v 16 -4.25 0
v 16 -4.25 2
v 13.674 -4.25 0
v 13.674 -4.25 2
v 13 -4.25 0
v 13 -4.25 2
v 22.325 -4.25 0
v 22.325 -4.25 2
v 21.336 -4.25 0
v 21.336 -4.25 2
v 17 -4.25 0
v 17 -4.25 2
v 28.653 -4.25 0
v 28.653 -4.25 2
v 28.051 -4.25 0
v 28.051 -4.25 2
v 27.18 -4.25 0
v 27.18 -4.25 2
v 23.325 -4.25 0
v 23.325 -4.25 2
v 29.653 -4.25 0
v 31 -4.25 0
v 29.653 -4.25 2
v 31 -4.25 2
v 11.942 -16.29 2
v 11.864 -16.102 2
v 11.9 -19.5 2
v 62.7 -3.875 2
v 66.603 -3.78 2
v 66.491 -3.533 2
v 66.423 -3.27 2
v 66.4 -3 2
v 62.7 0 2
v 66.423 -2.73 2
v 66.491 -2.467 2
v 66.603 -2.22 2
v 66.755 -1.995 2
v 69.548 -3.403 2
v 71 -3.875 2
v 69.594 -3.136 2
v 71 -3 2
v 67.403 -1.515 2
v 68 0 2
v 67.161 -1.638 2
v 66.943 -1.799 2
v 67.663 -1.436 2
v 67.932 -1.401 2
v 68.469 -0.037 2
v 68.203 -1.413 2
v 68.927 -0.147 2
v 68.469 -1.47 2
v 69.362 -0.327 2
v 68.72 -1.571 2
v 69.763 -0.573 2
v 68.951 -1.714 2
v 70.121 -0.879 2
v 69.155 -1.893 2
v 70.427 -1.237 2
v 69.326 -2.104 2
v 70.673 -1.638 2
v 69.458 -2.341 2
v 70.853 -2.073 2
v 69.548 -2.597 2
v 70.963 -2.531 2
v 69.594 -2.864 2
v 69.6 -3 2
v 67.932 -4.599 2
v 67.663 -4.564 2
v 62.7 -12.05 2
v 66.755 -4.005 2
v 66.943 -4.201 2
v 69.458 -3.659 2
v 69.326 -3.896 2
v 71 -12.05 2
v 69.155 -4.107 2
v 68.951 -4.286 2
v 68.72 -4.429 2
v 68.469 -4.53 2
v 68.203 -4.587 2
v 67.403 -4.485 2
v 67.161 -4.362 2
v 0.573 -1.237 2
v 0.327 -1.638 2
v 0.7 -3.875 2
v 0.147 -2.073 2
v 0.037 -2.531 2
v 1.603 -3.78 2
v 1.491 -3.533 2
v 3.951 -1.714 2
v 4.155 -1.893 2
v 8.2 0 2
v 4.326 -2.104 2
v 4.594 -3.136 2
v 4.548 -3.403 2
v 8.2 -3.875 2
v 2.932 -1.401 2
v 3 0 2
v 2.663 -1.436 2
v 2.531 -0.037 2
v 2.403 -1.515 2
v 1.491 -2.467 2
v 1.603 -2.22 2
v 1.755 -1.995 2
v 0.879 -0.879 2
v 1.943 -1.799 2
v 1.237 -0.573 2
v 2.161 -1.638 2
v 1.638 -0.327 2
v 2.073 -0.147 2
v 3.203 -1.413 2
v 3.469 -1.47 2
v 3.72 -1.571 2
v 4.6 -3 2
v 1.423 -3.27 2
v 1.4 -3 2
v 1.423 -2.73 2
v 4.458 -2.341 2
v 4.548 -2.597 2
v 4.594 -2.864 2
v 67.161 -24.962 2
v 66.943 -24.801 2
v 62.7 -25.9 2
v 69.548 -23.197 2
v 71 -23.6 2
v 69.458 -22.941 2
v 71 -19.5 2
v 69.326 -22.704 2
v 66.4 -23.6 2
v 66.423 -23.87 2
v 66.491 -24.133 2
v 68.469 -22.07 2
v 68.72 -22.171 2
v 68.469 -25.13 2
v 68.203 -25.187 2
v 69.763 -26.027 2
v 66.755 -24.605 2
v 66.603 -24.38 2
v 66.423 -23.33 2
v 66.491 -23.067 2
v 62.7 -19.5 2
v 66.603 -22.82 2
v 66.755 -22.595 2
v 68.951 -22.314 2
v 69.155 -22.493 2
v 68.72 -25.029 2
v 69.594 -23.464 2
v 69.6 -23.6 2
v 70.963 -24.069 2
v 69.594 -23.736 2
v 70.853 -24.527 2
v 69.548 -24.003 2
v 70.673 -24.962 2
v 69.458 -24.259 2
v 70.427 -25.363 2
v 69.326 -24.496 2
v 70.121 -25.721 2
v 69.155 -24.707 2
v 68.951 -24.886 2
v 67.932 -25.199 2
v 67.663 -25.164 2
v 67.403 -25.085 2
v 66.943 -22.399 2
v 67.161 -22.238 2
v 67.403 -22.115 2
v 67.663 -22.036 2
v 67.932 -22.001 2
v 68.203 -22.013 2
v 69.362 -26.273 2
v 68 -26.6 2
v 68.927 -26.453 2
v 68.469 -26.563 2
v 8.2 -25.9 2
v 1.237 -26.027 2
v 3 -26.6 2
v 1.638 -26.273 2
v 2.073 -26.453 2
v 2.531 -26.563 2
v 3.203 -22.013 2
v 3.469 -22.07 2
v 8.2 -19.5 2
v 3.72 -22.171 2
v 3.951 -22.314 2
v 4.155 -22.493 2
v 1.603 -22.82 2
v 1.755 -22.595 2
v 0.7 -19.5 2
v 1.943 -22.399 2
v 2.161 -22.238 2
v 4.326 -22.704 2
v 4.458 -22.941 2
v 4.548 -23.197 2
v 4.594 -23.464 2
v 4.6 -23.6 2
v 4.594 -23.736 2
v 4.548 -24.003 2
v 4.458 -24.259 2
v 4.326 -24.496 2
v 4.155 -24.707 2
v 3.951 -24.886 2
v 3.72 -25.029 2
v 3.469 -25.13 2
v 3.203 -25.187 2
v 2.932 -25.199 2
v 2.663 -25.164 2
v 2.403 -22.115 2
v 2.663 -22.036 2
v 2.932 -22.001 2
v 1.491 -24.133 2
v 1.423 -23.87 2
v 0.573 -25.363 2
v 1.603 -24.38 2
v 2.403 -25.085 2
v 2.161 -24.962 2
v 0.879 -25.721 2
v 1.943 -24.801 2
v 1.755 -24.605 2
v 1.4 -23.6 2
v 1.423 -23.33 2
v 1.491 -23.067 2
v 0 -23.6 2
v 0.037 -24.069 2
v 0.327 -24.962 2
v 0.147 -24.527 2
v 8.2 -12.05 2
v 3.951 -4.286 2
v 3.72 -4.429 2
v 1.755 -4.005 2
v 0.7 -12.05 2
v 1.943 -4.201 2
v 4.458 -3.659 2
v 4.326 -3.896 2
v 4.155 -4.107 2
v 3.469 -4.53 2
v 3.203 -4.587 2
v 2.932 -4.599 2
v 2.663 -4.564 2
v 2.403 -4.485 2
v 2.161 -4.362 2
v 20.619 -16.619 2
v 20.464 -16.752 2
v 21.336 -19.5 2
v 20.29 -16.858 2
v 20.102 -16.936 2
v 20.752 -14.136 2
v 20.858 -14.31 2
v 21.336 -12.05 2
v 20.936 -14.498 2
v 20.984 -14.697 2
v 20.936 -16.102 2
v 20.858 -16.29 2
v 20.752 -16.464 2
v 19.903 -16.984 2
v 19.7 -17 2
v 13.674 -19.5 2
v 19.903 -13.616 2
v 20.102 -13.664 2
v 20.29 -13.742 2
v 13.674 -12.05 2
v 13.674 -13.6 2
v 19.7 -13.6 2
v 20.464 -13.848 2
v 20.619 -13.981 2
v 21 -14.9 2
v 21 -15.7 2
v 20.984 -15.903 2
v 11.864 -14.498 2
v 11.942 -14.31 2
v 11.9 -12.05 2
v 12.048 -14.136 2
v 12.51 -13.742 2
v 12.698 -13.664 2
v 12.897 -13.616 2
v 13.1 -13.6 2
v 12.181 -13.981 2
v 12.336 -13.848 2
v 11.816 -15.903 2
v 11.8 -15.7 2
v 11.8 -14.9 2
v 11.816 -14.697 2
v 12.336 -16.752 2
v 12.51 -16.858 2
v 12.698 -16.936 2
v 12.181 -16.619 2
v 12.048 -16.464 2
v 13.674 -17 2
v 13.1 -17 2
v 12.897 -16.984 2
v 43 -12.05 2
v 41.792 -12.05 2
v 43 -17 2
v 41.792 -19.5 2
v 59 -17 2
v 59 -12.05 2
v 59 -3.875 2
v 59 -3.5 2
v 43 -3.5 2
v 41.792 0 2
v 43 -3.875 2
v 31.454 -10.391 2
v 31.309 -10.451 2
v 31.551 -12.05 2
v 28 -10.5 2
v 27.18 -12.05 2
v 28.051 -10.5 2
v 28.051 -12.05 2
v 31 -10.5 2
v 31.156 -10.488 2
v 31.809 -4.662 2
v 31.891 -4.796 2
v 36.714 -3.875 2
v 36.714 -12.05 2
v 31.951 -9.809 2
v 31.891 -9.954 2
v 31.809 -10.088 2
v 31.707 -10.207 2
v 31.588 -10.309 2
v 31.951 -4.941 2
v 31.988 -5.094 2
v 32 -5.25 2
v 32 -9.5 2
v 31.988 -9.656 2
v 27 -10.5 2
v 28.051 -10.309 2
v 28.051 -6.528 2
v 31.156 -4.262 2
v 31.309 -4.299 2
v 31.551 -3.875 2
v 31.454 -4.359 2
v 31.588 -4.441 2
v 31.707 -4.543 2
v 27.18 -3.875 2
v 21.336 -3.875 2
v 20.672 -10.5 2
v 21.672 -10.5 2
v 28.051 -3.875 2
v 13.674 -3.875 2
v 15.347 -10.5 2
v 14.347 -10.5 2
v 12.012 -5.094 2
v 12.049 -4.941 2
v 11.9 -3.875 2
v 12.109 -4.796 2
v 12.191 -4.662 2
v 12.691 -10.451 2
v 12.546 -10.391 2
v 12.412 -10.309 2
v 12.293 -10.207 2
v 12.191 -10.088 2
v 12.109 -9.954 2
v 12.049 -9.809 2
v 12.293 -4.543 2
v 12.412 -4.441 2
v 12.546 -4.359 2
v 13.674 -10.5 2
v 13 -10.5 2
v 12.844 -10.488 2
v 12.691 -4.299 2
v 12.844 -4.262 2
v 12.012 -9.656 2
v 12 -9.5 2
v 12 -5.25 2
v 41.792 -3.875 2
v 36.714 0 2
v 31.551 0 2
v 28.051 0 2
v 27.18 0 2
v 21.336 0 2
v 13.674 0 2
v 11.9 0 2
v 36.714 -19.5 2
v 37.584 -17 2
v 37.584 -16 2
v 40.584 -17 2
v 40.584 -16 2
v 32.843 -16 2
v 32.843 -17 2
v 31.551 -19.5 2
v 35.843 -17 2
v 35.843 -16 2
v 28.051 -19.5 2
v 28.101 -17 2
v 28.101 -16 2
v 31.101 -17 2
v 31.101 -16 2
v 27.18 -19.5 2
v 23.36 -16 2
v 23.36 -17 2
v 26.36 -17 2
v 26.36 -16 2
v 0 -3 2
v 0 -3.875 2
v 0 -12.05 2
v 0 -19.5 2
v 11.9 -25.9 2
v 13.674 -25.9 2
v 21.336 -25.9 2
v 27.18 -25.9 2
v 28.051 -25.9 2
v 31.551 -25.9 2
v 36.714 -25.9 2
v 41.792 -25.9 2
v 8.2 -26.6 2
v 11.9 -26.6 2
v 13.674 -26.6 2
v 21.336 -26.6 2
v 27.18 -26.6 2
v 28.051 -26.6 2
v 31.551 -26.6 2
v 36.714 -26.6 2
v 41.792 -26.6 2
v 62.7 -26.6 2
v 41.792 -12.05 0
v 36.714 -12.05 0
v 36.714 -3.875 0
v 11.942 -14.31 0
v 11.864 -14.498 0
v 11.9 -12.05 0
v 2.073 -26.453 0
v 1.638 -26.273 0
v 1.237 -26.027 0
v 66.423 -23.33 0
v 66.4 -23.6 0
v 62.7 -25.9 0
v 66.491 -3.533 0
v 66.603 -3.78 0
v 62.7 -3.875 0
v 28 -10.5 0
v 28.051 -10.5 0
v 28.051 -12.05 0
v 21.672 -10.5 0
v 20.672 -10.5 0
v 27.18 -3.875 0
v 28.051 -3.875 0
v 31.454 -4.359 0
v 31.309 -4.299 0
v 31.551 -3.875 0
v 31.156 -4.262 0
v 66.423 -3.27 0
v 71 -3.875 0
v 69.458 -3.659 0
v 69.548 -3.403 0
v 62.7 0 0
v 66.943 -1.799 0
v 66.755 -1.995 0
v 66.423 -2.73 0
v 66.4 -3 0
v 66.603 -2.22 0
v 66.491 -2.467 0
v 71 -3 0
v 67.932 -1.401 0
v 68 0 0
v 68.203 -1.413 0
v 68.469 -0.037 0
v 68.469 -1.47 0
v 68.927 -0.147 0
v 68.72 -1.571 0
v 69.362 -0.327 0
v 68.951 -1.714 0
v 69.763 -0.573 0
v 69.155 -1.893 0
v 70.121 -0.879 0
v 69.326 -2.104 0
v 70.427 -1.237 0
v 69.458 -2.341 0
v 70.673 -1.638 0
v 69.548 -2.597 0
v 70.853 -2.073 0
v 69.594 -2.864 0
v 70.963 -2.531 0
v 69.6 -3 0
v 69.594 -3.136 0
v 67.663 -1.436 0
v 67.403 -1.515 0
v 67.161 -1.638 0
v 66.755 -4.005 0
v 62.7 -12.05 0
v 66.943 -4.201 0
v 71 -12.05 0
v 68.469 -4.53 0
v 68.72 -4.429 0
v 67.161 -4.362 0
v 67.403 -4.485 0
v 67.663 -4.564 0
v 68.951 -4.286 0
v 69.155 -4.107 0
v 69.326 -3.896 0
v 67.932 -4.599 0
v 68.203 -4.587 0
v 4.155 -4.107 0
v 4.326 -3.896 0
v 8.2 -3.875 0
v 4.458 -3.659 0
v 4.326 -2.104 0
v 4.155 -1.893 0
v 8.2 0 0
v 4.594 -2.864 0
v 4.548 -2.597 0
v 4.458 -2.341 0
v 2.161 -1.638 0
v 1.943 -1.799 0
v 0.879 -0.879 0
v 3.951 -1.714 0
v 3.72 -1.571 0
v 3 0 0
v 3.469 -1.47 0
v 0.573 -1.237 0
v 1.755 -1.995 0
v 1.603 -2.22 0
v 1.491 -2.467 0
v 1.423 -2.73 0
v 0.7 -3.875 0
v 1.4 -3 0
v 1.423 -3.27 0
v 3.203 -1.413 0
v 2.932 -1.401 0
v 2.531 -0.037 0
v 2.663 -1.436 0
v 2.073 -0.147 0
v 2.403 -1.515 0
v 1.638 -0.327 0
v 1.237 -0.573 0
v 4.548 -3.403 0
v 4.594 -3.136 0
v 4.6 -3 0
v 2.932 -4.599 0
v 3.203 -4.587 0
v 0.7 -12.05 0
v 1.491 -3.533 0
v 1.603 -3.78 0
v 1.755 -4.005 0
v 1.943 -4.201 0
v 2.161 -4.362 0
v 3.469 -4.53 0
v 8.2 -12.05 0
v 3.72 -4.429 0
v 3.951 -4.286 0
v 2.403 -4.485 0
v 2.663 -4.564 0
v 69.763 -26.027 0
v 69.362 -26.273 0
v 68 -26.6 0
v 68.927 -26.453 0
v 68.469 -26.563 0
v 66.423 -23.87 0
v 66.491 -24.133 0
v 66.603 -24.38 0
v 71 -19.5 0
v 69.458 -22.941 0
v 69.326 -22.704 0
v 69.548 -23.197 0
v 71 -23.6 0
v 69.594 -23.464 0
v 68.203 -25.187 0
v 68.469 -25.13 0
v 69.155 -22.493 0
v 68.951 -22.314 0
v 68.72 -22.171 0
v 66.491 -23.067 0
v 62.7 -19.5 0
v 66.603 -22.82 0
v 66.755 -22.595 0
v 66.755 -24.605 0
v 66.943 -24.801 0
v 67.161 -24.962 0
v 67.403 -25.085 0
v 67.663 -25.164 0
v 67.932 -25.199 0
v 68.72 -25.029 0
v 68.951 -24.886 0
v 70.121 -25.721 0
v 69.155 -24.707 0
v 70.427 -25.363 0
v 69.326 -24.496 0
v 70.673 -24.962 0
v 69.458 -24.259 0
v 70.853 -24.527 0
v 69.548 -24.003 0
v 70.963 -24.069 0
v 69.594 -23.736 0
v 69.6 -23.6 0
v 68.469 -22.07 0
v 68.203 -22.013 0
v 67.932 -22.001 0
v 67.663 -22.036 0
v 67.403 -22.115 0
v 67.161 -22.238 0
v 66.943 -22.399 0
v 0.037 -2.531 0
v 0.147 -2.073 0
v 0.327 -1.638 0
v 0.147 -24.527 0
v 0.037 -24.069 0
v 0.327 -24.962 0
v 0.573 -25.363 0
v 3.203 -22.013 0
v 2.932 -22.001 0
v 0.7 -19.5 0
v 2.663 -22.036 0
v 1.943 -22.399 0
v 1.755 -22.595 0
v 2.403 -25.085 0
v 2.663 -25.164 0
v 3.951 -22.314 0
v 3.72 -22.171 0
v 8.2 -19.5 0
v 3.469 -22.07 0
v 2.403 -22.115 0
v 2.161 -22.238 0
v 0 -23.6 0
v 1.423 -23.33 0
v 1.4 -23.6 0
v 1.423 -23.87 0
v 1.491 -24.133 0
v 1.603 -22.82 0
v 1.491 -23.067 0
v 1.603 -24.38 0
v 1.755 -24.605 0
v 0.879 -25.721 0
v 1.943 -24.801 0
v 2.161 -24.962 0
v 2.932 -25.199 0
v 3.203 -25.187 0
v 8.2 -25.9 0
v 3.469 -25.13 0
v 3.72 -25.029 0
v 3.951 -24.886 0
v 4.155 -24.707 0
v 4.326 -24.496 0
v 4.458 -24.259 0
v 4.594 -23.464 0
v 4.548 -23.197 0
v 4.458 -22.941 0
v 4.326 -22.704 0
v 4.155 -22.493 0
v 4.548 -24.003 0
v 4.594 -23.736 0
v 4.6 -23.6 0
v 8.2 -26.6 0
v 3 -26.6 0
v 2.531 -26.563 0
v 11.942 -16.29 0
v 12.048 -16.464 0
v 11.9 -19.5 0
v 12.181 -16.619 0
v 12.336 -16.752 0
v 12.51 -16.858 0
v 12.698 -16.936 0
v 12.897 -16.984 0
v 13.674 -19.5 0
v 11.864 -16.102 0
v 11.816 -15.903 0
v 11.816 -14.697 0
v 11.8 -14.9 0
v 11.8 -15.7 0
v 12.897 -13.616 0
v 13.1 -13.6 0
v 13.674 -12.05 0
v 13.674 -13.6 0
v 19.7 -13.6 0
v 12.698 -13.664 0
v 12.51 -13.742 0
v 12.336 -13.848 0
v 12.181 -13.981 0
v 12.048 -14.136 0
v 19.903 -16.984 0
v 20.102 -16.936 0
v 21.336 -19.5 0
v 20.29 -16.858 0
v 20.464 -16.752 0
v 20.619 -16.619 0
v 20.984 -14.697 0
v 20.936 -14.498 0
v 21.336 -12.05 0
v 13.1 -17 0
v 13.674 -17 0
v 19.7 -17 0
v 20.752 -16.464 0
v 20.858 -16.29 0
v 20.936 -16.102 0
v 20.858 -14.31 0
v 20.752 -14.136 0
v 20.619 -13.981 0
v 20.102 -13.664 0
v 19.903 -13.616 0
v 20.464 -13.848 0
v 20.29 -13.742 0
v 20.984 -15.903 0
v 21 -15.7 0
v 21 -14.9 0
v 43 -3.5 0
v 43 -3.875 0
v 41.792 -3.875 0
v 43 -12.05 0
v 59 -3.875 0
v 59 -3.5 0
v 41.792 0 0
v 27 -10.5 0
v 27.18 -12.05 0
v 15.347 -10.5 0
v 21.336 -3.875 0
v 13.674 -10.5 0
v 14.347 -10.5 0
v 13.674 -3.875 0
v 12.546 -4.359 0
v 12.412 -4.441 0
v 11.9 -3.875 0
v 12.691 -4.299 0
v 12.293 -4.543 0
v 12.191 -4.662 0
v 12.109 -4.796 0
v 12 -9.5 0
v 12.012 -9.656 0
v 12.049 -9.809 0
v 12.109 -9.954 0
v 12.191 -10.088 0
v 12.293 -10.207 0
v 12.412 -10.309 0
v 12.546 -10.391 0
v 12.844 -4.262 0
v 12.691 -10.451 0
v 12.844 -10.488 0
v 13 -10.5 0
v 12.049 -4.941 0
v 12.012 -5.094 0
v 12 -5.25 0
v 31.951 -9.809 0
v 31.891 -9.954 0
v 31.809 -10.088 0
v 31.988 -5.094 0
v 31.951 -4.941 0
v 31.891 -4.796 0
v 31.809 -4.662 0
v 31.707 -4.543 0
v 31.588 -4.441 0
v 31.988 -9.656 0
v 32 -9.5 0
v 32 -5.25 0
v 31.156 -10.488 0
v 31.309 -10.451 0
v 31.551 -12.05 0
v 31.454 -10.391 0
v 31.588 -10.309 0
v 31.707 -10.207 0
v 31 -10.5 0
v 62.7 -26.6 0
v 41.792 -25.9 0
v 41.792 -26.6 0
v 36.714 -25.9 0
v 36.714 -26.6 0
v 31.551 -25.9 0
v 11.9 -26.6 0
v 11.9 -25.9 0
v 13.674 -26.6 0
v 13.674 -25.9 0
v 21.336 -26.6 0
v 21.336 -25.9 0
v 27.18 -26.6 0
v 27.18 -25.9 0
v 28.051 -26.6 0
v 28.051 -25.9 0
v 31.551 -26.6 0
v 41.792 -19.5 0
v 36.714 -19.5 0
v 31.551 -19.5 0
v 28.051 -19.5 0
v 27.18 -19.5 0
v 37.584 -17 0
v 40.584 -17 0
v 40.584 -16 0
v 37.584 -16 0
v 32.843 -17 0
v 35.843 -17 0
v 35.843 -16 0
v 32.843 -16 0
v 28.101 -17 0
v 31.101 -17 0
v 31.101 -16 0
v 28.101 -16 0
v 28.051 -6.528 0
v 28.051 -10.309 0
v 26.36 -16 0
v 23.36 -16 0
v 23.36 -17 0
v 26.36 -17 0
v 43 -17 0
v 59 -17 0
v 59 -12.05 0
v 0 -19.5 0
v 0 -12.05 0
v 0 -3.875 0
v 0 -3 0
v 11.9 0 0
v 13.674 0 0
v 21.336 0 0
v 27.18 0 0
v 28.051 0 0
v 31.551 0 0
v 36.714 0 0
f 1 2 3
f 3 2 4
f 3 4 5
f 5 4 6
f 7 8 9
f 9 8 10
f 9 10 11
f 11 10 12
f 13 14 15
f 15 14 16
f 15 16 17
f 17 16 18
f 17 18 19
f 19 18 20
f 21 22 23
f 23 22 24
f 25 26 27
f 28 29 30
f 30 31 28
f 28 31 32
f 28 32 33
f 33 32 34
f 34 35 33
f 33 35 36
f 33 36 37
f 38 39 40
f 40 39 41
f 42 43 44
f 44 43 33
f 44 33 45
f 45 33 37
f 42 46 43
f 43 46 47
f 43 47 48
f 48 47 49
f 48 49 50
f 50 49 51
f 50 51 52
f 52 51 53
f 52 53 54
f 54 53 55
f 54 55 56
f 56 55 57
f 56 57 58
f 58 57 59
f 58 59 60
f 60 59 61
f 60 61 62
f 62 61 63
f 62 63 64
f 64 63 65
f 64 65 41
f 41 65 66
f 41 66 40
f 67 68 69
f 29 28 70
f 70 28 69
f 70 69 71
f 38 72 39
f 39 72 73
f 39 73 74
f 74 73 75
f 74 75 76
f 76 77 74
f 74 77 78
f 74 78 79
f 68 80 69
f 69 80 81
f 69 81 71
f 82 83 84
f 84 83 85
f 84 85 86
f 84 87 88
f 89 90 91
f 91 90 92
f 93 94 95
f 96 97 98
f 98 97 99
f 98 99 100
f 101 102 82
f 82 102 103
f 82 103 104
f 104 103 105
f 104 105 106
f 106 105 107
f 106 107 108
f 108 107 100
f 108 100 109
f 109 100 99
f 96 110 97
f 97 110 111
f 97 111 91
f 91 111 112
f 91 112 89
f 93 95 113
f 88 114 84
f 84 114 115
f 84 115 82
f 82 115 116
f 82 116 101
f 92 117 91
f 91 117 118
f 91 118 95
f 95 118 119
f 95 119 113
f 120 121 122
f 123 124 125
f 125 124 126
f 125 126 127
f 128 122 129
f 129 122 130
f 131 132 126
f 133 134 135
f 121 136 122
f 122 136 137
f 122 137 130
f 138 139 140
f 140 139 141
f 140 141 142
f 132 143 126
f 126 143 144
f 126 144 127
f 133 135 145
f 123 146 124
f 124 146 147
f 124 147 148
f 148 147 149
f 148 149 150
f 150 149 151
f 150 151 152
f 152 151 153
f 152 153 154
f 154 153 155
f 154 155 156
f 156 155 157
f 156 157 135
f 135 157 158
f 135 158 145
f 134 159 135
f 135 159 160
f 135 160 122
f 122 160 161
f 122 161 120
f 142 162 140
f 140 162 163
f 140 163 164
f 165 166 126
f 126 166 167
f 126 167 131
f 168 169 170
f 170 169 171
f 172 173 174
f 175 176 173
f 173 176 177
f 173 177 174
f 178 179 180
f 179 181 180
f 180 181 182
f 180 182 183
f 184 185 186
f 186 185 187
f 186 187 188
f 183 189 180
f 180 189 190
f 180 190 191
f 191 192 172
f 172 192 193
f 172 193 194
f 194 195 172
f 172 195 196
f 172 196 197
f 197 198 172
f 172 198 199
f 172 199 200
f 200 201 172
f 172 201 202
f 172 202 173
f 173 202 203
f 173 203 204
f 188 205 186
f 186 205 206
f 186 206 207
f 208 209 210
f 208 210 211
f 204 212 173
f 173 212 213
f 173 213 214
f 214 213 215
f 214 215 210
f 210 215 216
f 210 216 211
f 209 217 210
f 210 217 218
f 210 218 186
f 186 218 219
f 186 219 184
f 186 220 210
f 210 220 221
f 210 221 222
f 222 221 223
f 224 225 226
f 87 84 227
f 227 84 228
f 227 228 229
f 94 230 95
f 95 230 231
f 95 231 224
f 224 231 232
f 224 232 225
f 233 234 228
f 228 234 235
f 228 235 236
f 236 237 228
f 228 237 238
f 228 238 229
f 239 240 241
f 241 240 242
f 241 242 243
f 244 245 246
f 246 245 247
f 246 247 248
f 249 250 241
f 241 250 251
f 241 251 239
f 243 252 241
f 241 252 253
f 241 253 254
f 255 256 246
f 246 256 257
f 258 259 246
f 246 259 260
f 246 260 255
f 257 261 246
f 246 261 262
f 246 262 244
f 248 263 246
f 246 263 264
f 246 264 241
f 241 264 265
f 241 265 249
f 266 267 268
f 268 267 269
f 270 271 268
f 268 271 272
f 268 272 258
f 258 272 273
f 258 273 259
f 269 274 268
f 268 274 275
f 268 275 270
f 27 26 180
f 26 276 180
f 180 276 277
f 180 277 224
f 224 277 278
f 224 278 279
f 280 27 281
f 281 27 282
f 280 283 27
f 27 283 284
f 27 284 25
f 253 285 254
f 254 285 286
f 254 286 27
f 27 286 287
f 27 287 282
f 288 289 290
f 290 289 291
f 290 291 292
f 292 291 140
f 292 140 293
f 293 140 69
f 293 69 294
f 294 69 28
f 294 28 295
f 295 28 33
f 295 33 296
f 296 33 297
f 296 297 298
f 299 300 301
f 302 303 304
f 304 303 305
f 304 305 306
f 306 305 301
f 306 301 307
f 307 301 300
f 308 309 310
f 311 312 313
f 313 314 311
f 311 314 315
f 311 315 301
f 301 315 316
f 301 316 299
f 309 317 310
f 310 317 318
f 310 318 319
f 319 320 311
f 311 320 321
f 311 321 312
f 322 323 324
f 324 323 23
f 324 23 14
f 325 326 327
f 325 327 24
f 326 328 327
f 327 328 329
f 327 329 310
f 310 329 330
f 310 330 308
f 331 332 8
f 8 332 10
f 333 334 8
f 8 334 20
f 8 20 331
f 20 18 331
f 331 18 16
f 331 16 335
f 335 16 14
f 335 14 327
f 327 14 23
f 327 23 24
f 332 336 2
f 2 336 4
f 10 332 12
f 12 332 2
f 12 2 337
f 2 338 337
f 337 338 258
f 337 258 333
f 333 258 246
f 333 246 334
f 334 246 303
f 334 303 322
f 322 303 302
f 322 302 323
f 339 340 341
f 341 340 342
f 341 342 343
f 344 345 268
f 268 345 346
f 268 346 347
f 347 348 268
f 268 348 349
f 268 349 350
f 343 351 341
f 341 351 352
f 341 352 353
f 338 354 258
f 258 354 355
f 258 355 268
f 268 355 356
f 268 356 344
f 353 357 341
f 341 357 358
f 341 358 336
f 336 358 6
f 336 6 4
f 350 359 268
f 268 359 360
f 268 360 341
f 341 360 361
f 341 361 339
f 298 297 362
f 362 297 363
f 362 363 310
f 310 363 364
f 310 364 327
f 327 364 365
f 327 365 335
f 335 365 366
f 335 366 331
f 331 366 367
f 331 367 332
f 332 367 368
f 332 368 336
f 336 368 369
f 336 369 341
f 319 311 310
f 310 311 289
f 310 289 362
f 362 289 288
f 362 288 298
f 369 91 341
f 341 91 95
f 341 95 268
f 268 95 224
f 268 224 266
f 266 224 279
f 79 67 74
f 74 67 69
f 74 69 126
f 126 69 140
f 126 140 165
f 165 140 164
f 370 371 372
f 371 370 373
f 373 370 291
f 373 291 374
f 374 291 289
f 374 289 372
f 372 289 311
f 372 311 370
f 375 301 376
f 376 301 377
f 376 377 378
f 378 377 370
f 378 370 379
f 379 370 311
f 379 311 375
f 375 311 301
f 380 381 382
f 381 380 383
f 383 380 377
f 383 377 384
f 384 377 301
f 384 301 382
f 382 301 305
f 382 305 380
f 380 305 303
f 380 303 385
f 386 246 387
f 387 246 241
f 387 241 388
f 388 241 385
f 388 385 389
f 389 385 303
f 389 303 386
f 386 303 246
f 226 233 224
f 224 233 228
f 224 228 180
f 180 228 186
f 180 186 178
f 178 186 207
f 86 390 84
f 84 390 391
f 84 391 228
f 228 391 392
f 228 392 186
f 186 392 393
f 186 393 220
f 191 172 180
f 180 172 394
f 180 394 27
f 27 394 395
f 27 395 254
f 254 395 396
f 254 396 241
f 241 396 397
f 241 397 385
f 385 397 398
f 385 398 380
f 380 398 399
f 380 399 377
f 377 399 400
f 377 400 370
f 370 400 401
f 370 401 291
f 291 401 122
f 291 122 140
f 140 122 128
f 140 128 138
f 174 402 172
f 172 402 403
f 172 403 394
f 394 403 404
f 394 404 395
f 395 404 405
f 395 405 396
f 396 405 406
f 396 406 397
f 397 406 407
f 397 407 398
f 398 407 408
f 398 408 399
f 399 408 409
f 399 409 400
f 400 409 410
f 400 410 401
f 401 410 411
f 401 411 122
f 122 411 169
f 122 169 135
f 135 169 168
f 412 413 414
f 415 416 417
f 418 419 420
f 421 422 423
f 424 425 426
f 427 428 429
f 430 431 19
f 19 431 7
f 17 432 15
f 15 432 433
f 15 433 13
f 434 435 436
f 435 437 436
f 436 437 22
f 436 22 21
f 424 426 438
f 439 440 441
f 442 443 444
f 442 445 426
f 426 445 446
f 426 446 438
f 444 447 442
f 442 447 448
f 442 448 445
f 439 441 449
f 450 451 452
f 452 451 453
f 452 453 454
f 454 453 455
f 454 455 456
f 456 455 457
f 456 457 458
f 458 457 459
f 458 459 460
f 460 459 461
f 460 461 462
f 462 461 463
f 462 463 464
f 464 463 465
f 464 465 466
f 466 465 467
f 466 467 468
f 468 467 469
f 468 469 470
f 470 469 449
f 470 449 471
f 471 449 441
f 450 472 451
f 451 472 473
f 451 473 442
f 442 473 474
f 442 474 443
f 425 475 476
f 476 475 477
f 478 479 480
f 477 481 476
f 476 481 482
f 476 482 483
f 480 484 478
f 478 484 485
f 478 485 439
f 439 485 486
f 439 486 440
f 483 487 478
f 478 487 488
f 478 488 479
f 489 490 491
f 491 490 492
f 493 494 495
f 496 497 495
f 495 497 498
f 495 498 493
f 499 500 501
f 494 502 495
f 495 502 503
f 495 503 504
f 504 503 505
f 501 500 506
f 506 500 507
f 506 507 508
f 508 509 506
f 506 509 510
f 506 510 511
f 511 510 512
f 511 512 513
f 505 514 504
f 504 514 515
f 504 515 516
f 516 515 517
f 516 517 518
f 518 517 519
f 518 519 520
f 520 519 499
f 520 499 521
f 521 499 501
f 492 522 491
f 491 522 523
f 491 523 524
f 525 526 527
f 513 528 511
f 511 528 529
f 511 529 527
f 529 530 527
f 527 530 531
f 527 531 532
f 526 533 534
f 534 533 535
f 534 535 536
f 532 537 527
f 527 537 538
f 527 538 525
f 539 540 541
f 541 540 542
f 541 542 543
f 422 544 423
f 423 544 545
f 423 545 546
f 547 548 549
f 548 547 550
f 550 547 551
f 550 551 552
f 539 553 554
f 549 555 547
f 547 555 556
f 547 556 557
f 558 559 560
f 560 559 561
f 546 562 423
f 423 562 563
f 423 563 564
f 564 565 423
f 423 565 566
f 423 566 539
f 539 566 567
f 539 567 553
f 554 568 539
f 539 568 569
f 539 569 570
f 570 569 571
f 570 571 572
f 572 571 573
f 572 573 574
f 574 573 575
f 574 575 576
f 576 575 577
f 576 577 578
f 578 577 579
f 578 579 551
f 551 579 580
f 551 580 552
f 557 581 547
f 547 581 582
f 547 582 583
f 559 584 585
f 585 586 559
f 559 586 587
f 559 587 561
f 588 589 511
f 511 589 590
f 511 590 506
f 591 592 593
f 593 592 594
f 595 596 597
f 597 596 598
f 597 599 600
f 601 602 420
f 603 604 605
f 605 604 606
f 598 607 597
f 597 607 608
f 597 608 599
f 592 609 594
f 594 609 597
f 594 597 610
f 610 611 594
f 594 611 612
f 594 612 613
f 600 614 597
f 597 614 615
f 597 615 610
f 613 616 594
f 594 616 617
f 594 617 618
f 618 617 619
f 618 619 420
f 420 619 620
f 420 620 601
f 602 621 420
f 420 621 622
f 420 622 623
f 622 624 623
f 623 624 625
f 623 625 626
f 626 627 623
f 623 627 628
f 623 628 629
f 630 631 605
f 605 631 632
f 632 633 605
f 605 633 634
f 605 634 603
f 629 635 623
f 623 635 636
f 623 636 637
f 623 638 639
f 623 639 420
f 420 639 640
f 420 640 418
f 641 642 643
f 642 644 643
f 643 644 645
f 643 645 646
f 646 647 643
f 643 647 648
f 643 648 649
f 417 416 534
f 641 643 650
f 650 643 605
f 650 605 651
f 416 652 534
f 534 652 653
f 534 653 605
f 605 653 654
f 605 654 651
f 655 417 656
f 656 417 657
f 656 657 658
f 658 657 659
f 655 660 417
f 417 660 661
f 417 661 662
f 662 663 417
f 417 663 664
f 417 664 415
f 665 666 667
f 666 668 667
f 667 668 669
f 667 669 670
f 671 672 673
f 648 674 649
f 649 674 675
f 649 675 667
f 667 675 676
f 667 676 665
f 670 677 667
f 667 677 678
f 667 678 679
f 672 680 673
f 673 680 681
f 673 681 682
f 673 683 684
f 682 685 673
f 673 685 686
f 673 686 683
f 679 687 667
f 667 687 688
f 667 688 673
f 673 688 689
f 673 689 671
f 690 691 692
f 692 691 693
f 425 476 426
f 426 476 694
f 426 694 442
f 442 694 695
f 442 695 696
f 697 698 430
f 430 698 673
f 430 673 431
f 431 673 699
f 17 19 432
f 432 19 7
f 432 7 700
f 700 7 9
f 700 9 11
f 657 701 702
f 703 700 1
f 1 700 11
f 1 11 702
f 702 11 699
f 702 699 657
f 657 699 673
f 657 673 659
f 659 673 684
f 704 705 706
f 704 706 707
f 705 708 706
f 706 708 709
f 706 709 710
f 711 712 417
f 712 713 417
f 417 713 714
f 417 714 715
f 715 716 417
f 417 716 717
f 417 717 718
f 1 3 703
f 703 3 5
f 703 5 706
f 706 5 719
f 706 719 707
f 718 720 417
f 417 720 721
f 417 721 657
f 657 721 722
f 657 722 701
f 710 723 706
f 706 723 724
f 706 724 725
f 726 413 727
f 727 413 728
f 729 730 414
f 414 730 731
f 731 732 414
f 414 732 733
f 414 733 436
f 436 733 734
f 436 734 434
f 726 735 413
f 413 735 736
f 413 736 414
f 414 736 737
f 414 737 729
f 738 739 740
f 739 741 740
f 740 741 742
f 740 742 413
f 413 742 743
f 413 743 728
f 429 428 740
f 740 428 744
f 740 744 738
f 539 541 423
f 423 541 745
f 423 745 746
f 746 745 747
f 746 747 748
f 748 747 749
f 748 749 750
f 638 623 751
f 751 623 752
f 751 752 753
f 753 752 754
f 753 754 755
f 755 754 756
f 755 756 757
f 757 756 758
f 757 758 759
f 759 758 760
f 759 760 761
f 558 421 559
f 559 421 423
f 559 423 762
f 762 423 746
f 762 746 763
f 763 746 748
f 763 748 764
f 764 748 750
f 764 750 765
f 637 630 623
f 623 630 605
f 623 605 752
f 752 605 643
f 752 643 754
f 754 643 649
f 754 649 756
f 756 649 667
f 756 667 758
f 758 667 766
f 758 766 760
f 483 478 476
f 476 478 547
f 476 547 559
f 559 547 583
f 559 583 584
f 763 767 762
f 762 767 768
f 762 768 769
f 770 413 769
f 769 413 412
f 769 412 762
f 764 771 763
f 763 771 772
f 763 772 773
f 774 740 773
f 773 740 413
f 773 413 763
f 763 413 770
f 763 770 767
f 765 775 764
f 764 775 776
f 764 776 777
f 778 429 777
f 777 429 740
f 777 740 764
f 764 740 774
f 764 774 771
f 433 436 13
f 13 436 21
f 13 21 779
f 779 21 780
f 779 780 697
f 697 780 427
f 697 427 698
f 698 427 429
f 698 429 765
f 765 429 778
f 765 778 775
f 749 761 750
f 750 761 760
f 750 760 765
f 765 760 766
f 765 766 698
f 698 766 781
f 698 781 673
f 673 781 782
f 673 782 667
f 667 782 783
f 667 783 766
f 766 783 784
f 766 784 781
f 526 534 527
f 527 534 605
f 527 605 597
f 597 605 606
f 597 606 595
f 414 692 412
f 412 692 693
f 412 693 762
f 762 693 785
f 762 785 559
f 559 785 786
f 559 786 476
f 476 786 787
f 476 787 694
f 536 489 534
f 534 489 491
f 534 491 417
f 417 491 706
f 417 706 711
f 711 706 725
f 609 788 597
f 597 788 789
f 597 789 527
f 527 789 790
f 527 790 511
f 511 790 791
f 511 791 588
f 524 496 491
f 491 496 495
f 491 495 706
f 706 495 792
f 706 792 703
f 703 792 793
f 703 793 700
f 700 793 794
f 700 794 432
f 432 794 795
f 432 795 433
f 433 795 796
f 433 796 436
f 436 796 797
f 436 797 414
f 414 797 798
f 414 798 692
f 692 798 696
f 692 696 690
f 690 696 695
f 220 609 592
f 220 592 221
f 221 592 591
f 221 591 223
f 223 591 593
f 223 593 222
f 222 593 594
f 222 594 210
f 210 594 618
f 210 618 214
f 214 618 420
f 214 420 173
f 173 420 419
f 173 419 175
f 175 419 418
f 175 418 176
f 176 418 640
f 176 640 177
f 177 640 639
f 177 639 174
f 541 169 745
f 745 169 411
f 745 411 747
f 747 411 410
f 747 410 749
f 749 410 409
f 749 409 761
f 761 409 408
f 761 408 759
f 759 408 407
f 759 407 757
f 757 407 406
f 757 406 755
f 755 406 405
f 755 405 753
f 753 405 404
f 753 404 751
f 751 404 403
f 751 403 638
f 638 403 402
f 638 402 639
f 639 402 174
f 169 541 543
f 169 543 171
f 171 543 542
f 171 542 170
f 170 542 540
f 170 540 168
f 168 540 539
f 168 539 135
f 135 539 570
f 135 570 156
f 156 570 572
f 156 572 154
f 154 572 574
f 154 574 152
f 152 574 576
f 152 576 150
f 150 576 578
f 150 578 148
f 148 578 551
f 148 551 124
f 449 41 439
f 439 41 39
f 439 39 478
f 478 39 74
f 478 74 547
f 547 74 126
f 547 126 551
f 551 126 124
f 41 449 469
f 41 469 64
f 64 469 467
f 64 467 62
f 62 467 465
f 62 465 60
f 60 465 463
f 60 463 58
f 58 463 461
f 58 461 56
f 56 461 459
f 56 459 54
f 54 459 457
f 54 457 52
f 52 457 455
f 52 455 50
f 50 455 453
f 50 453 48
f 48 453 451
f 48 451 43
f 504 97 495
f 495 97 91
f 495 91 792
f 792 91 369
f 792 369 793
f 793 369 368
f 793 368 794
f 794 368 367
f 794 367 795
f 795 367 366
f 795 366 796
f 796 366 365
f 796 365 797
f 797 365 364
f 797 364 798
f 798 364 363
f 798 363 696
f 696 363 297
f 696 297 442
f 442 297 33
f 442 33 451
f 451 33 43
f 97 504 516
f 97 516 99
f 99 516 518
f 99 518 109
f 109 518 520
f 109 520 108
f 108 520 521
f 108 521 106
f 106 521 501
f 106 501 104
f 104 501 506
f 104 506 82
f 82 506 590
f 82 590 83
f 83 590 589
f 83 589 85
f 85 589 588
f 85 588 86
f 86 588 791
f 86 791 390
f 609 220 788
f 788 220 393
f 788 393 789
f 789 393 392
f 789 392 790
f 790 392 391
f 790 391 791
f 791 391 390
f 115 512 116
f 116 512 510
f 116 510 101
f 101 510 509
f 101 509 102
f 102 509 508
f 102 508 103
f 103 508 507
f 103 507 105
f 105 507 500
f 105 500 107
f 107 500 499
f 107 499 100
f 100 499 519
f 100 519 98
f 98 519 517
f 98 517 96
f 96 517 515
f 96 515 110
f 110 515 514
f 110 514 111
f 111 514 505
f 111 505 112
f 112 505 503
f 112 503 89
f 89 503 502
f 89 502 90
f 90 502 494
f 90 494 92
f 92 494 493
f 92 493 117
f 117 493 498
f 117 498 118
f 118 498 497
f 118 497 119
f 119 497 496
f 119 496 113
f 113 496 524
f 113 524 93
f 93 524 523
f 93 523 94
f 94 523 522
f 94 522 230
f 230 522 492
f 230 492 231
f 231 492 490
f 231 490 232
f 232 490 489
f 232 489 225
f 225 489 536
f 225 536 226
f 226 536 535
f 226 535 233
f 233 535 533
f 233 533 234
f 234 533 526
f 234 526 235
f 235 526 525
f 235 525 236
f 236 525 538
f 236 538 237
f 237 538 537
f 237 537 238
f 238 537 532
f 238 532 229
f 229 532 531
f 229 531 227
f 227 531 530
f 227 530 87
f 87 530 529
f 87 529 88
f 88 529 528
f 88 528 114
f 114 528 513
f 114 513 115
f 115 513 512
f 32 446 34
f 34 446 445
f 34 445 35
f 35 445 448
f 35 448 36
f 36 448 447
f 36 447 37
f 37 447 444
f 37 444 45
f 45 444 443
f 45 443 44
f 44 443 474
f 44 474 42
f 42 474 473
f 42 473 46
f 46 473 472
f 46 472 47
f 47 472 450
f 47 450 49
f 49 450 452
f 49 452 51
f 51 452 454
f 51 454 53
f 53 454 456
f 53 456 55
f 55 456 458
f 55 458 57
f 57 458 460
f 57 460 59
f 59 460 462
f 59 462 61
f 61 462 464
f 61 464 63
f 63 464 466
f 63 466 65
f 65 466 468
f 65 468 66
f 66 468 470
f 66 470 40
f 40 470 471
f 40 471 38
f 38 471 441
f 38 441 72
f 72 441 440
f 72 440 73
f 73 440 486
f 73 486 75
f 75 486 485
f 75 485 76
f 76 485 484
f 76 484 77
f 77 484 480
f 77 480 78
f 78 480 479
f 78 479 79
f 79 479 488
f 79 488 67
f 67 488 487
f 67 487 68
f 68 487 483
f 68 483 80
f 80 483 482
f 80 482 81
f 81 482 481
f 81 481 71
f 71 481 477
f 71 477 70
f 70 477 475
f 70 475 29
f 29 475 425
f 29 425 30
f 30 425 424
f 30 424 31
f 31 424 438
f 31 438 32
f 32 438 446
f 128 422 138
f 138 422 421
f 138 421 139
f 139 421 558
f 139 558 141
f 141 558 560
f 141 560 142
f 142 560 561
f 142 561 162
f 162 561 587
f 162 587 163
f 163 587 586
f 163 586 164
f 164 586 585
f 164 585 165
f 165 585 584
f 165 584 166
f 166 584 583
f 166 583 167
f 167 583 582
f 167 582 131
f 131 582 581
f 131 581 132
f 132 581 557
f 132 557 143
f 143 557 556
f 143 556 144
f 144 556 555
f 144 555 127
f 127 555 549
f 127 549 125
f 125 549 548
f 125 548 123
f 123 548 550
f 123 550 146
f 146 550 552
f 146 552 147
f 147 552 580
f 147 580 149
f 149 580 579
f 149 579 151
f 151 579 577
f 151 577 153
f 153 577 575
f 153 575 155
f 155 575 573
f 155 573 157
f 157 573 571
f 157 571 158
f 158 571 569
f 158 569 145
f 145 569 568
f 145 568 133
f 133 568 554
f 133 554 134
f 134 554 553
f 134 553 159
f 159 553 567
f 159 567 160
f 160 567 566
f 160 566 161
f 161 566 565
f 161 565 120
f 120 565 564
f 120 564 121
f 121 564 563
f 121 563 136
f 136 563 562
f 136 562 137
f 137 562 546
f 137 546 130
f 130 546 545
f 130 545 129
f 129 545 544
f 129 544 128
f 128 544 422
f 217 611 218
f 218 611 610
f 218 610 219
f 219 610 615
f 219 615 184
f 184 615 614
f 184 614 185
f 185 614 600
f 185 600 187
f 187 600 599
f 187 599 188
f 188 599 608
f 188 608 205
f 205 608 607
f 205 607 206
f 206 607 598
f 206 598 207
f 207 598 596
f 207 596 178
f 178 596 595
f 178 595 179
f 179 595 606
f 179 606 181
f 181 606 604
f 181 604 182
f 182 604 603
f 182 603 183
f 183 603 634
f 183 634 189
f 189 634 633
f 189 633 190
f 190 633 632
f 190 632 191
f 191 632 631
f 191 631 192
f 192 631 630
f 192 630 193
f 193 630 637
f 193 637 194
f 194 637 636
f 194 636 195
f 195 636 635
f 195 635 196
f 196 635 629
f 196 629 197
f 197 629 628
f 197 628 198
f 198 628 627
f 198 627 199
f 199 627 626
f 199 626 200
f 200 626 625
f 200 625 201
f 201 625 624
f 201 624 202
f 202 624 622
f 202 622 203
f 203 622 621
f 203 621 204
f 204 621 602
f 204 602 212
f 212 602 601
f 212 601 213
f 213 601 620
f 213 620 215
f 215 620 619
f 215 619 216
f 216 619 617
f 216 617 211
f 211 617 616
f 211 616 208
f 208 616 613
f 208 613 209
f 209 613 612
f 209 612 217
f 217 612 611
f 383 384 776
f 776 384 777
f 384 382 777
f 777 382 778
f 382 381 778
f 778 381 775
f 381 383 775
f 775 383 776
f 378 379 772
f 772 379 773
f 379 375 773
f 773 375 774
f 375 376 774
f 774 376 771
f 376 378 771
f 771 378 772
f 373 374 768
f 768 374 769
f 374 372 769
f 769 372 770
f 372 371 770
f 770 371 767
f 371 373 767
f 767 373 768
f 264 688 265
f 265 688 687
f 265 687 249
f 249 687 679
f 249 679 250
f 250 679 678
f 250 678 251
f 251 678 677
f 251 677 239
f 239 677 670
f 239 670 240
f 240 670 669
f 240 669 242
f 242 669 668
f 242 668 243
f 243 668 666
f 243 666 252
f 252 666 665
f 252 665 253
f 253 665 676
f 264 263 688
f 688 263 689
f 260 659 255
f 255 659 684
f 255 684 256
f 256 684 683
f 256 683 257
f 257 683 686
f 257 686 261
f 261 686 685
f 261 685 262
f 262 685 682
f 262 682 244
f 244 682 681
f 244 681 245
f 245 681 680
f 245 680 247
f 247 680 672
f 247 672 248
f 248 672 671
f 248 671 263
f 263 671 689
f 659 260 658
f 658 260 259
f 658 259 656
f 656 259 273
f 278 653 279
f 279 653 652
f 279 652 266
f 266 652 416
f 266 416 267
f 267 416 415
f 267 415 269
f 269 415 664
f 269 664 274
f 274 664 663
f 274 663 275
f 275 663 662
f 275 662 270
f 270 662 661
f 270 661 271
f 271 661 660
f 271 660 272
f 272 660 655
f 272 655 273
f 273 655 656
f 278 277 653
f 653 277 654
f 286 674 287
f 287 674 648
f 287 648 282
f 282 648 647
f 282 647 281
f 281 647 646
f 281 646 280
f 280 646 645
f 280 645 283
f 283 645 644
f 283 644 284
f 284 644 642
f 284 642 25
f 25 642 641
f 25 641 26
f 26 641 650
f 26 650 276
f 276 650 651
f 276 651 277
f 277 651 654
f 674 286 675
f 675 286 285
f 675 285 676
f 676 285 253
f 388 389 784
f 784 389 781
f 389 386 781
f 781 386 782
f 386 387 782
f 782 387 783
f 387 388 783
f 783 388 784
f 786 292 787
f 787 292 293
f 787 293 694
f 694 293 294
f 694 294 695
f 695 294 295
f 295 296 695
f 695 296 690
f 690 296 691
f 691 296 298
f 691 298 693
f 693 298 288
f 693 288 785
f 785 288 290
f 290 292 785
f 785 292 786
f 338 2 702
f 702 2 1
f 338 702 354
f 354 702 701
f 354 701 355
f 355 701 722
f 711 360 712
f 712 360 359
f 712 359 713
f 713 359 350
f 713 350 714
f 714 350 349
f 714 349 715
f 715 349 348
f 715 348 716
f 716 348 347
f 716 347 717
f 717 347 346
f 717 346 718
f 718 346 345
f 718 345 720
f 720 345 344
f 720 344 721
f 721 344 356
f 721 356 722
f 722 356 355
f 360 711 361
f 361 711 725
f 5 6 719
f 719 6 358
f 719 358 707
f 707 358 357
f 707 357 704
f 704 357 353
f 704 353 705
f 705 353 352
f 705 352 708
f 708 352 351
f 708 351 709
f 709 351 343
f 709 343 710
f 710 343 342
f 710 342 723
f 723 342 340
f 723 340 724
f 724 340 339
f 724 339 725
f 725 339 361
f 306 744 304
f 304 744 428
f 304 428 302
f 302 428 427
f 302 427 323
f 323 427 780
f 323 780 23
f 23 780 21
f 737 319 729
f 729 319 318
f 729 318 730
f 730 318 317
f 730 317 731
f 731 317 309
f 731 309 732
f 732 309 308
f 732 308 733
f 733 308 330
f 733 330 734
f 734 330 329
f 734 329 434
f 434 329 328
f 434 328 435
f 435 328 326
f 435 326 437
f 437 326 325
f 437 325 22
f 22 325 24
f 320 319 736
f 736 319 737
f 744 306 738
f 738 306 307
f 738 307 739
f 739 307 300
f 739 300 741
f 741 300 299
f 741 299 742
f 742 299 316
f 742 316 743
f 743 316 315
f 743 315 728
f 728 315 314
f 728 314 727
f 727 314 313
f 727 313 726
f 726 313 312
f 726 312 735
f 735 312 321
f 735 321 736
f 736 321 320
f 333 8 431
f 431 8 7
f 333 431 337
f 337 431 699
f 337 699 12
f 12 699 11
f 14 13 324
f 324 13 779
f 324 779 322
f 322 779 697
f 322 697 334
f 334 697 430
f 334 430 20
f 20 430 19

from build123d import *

# Parameters (mm, degrees)
SKETCH_1_R          = 1.6
EXTRUDE_1_DEPTH     = 2
SKETCH_2_W          = 16
SKETCH_2_H          = 13.5
SKETCH_2_W_2        = 3
SKETCH_2_H_2        = 1
CUT_EXTRUDE_2_DEPTH = 2
SKETCH_3_W          = 20
SKETCH_3_H          = 2.5
EXTRUDE_2_DEPTH     = 20
CUT_EXTRUDE_3_DEPTH = 20
SKETCH_6_W          = 20
SKETCH_6_H          = 2.5
CUT_EXTRUDE_4_DEPTH = 20


with BuildPart() as part:
    # 草图1 → 凸台-拉伸1 (new body)
    with BuildSketch(Plane.XY):
        with BuildLine():
            Line((3, 0), (68, 0))
            ThreePointArc((68, 0), (70.121320344, -0.878679656), (71, -3))
            Line((71, -3), (71, -23.6))
            ThreePointArc((71, -23.6), (70.121320344, -25.721320344), (68, -26.6))
            Line((68, -26.6), (3, -26.6))
            ThreePointArc((3, -26.6), (0.878679656, -25.721320344), (0, -23.6))
            Line((0, -23.6), (0, -3))
            ThreePointArc((0, -3), (0.878679656, -0.878679656), (3, 0))
        make_face()
        with Locations((3, -3)):
            Circle(SKETCH_1_R, mode=Mode.SUBTRACT)
        with Locations((68, -3)):
            Circle(SKETCH_1_R, mode=Mode.SUBTRACT)
        with Locations((68, -23.6)):
            Circle(SKETCH_1_R, mode=Mode.SUBTRACT)
        with Locations((3, -23.6)):
            Circle(SKETCH_1_R, mode=Mode.SUBTRACT)
    extrude(amount=EXTRUDE_1_DEPTH)

    # 草图2 → 切除-拉伸2 (cut)
    with BuildSketch(Plane(origin=(0, 0, 0), x_dir=(-1, 0, 0), z_dir=(0, 0, -1))):
        with Locations((-51, -10.25)):
            Rectangle(SKETCH_2_W, SKETCH_2_H)
        with BuildLine():
            Line((-19.7, -17), (-13.1, -17))
            ThreePointArc((-13.1, -17), (-12.180761184, -16.619238816), (-11.8, -15.7))
            Line((-11.8, -15.7), (-11.8, -14.9))
            ThreePointArc((-11.8, -14.9), (-12.180761184, -13.980761184), (-13.1, -13.6))
            Line((-13.1, -13.6), (-19.7, -13.6))
            ThreePointArc((-19.7, -13.6), (-20.619238816, -13.980761184), (-21, -14.9))
            Line((-21, -14.9), (-21, -15.7))
            ThreePointArc((-21, -15.7), (-20.619238816, -16.619238816), (-19.7, -17))
        make_face()
        with Locations((-39.084, -16.5)):
            Rectangle(SKETCH_2_W_2, SKETCH_2_H_2)
        with Locations((-34.343, -16.5)):
            Rectangle(SKETCH_2_W_2, SKETCH_2_H_2)
        with Locations((-29.601, -16.5)):
            Rectangle(SKETCH_2_W_2, SKETCH_2_H_2)
        with Locations((-24.86, -16.5)):
            Rectangle(SKETCH_2_W_2, SKETCH_2_H_2)
    extrude(amount=-CUT_EXTRUDE_2_DEPTH, mode=Mode.SUBTRACT)

    # 草图3 → 凸台-拉伸2 (add)
    with BuildSketch(Plane.XY.offset(2)):
        with Locations((22, -3)):
            Rectangle(SKETCH_3_W, SKETCH_3_H)
    extrude(amount=EXTRUDE_2_DEPTH)

    # 草图5 → 切除-拉伸3 (cut)
    with BuildSketch(Plane.XY.offset(2)):
        with BuildLine():
            Line((14.347228721, -10.5), (16, -4.25))
            Line((16, -4.25), (13, -4.25))
            ThreePointArc((13, -4.25), (12.292893219, -4.542893219), (12, -5.25))
            Line((12, -5.25), (12, -9.5))
            ThreePointArc((12, -9.5), (12.292893219, -10.207106781), (13, -10.5))
            Line((13, -10.5), (14.347228721, -10.5))
        make_face()
        Polygon((22.325, -4.25), (17, -4.25), (15.347228721, -10.5), (20.672228721, -10.5), align=None)
        Polygon((28.652771279, -4.25), (23.325, -4.25), (21.672228721, -10.5), (27, -10.5), align=None)
        with BuildLine():
            Line((31, -4.25), (29.652771279, -4.25))
            Line((29.652771279, -4.25), (28, -10.5))
            Line((28, -10.5), (31, -10.5))
            ThreePointArc((31, -10.5), (31.707106781, -10.207106781), (32, -9.5))
            Line((32, -9.5), (32, -5.25))
            ThreePointArc((32, -5.25), (31.707106781, -4.542893219), (31, -4.25))
        make_face()
    extrude(amount=-CUT_EXTRUDE_3_DEPTH, mode=Mode.SUBTRACT)

    # 草图6 → 切除-拉伸4 (cut)
    with BuildSketch(Plane.XY.offset(22)):
        with Locations((22, -3)):
            Rectangle(SKETCH_6_W, SKETCH_6_H)
    extrude(amount=-CUT_EXTRUDE_4_DEPTH, mode=Mode.SUBTRACT)


solid = part.part
